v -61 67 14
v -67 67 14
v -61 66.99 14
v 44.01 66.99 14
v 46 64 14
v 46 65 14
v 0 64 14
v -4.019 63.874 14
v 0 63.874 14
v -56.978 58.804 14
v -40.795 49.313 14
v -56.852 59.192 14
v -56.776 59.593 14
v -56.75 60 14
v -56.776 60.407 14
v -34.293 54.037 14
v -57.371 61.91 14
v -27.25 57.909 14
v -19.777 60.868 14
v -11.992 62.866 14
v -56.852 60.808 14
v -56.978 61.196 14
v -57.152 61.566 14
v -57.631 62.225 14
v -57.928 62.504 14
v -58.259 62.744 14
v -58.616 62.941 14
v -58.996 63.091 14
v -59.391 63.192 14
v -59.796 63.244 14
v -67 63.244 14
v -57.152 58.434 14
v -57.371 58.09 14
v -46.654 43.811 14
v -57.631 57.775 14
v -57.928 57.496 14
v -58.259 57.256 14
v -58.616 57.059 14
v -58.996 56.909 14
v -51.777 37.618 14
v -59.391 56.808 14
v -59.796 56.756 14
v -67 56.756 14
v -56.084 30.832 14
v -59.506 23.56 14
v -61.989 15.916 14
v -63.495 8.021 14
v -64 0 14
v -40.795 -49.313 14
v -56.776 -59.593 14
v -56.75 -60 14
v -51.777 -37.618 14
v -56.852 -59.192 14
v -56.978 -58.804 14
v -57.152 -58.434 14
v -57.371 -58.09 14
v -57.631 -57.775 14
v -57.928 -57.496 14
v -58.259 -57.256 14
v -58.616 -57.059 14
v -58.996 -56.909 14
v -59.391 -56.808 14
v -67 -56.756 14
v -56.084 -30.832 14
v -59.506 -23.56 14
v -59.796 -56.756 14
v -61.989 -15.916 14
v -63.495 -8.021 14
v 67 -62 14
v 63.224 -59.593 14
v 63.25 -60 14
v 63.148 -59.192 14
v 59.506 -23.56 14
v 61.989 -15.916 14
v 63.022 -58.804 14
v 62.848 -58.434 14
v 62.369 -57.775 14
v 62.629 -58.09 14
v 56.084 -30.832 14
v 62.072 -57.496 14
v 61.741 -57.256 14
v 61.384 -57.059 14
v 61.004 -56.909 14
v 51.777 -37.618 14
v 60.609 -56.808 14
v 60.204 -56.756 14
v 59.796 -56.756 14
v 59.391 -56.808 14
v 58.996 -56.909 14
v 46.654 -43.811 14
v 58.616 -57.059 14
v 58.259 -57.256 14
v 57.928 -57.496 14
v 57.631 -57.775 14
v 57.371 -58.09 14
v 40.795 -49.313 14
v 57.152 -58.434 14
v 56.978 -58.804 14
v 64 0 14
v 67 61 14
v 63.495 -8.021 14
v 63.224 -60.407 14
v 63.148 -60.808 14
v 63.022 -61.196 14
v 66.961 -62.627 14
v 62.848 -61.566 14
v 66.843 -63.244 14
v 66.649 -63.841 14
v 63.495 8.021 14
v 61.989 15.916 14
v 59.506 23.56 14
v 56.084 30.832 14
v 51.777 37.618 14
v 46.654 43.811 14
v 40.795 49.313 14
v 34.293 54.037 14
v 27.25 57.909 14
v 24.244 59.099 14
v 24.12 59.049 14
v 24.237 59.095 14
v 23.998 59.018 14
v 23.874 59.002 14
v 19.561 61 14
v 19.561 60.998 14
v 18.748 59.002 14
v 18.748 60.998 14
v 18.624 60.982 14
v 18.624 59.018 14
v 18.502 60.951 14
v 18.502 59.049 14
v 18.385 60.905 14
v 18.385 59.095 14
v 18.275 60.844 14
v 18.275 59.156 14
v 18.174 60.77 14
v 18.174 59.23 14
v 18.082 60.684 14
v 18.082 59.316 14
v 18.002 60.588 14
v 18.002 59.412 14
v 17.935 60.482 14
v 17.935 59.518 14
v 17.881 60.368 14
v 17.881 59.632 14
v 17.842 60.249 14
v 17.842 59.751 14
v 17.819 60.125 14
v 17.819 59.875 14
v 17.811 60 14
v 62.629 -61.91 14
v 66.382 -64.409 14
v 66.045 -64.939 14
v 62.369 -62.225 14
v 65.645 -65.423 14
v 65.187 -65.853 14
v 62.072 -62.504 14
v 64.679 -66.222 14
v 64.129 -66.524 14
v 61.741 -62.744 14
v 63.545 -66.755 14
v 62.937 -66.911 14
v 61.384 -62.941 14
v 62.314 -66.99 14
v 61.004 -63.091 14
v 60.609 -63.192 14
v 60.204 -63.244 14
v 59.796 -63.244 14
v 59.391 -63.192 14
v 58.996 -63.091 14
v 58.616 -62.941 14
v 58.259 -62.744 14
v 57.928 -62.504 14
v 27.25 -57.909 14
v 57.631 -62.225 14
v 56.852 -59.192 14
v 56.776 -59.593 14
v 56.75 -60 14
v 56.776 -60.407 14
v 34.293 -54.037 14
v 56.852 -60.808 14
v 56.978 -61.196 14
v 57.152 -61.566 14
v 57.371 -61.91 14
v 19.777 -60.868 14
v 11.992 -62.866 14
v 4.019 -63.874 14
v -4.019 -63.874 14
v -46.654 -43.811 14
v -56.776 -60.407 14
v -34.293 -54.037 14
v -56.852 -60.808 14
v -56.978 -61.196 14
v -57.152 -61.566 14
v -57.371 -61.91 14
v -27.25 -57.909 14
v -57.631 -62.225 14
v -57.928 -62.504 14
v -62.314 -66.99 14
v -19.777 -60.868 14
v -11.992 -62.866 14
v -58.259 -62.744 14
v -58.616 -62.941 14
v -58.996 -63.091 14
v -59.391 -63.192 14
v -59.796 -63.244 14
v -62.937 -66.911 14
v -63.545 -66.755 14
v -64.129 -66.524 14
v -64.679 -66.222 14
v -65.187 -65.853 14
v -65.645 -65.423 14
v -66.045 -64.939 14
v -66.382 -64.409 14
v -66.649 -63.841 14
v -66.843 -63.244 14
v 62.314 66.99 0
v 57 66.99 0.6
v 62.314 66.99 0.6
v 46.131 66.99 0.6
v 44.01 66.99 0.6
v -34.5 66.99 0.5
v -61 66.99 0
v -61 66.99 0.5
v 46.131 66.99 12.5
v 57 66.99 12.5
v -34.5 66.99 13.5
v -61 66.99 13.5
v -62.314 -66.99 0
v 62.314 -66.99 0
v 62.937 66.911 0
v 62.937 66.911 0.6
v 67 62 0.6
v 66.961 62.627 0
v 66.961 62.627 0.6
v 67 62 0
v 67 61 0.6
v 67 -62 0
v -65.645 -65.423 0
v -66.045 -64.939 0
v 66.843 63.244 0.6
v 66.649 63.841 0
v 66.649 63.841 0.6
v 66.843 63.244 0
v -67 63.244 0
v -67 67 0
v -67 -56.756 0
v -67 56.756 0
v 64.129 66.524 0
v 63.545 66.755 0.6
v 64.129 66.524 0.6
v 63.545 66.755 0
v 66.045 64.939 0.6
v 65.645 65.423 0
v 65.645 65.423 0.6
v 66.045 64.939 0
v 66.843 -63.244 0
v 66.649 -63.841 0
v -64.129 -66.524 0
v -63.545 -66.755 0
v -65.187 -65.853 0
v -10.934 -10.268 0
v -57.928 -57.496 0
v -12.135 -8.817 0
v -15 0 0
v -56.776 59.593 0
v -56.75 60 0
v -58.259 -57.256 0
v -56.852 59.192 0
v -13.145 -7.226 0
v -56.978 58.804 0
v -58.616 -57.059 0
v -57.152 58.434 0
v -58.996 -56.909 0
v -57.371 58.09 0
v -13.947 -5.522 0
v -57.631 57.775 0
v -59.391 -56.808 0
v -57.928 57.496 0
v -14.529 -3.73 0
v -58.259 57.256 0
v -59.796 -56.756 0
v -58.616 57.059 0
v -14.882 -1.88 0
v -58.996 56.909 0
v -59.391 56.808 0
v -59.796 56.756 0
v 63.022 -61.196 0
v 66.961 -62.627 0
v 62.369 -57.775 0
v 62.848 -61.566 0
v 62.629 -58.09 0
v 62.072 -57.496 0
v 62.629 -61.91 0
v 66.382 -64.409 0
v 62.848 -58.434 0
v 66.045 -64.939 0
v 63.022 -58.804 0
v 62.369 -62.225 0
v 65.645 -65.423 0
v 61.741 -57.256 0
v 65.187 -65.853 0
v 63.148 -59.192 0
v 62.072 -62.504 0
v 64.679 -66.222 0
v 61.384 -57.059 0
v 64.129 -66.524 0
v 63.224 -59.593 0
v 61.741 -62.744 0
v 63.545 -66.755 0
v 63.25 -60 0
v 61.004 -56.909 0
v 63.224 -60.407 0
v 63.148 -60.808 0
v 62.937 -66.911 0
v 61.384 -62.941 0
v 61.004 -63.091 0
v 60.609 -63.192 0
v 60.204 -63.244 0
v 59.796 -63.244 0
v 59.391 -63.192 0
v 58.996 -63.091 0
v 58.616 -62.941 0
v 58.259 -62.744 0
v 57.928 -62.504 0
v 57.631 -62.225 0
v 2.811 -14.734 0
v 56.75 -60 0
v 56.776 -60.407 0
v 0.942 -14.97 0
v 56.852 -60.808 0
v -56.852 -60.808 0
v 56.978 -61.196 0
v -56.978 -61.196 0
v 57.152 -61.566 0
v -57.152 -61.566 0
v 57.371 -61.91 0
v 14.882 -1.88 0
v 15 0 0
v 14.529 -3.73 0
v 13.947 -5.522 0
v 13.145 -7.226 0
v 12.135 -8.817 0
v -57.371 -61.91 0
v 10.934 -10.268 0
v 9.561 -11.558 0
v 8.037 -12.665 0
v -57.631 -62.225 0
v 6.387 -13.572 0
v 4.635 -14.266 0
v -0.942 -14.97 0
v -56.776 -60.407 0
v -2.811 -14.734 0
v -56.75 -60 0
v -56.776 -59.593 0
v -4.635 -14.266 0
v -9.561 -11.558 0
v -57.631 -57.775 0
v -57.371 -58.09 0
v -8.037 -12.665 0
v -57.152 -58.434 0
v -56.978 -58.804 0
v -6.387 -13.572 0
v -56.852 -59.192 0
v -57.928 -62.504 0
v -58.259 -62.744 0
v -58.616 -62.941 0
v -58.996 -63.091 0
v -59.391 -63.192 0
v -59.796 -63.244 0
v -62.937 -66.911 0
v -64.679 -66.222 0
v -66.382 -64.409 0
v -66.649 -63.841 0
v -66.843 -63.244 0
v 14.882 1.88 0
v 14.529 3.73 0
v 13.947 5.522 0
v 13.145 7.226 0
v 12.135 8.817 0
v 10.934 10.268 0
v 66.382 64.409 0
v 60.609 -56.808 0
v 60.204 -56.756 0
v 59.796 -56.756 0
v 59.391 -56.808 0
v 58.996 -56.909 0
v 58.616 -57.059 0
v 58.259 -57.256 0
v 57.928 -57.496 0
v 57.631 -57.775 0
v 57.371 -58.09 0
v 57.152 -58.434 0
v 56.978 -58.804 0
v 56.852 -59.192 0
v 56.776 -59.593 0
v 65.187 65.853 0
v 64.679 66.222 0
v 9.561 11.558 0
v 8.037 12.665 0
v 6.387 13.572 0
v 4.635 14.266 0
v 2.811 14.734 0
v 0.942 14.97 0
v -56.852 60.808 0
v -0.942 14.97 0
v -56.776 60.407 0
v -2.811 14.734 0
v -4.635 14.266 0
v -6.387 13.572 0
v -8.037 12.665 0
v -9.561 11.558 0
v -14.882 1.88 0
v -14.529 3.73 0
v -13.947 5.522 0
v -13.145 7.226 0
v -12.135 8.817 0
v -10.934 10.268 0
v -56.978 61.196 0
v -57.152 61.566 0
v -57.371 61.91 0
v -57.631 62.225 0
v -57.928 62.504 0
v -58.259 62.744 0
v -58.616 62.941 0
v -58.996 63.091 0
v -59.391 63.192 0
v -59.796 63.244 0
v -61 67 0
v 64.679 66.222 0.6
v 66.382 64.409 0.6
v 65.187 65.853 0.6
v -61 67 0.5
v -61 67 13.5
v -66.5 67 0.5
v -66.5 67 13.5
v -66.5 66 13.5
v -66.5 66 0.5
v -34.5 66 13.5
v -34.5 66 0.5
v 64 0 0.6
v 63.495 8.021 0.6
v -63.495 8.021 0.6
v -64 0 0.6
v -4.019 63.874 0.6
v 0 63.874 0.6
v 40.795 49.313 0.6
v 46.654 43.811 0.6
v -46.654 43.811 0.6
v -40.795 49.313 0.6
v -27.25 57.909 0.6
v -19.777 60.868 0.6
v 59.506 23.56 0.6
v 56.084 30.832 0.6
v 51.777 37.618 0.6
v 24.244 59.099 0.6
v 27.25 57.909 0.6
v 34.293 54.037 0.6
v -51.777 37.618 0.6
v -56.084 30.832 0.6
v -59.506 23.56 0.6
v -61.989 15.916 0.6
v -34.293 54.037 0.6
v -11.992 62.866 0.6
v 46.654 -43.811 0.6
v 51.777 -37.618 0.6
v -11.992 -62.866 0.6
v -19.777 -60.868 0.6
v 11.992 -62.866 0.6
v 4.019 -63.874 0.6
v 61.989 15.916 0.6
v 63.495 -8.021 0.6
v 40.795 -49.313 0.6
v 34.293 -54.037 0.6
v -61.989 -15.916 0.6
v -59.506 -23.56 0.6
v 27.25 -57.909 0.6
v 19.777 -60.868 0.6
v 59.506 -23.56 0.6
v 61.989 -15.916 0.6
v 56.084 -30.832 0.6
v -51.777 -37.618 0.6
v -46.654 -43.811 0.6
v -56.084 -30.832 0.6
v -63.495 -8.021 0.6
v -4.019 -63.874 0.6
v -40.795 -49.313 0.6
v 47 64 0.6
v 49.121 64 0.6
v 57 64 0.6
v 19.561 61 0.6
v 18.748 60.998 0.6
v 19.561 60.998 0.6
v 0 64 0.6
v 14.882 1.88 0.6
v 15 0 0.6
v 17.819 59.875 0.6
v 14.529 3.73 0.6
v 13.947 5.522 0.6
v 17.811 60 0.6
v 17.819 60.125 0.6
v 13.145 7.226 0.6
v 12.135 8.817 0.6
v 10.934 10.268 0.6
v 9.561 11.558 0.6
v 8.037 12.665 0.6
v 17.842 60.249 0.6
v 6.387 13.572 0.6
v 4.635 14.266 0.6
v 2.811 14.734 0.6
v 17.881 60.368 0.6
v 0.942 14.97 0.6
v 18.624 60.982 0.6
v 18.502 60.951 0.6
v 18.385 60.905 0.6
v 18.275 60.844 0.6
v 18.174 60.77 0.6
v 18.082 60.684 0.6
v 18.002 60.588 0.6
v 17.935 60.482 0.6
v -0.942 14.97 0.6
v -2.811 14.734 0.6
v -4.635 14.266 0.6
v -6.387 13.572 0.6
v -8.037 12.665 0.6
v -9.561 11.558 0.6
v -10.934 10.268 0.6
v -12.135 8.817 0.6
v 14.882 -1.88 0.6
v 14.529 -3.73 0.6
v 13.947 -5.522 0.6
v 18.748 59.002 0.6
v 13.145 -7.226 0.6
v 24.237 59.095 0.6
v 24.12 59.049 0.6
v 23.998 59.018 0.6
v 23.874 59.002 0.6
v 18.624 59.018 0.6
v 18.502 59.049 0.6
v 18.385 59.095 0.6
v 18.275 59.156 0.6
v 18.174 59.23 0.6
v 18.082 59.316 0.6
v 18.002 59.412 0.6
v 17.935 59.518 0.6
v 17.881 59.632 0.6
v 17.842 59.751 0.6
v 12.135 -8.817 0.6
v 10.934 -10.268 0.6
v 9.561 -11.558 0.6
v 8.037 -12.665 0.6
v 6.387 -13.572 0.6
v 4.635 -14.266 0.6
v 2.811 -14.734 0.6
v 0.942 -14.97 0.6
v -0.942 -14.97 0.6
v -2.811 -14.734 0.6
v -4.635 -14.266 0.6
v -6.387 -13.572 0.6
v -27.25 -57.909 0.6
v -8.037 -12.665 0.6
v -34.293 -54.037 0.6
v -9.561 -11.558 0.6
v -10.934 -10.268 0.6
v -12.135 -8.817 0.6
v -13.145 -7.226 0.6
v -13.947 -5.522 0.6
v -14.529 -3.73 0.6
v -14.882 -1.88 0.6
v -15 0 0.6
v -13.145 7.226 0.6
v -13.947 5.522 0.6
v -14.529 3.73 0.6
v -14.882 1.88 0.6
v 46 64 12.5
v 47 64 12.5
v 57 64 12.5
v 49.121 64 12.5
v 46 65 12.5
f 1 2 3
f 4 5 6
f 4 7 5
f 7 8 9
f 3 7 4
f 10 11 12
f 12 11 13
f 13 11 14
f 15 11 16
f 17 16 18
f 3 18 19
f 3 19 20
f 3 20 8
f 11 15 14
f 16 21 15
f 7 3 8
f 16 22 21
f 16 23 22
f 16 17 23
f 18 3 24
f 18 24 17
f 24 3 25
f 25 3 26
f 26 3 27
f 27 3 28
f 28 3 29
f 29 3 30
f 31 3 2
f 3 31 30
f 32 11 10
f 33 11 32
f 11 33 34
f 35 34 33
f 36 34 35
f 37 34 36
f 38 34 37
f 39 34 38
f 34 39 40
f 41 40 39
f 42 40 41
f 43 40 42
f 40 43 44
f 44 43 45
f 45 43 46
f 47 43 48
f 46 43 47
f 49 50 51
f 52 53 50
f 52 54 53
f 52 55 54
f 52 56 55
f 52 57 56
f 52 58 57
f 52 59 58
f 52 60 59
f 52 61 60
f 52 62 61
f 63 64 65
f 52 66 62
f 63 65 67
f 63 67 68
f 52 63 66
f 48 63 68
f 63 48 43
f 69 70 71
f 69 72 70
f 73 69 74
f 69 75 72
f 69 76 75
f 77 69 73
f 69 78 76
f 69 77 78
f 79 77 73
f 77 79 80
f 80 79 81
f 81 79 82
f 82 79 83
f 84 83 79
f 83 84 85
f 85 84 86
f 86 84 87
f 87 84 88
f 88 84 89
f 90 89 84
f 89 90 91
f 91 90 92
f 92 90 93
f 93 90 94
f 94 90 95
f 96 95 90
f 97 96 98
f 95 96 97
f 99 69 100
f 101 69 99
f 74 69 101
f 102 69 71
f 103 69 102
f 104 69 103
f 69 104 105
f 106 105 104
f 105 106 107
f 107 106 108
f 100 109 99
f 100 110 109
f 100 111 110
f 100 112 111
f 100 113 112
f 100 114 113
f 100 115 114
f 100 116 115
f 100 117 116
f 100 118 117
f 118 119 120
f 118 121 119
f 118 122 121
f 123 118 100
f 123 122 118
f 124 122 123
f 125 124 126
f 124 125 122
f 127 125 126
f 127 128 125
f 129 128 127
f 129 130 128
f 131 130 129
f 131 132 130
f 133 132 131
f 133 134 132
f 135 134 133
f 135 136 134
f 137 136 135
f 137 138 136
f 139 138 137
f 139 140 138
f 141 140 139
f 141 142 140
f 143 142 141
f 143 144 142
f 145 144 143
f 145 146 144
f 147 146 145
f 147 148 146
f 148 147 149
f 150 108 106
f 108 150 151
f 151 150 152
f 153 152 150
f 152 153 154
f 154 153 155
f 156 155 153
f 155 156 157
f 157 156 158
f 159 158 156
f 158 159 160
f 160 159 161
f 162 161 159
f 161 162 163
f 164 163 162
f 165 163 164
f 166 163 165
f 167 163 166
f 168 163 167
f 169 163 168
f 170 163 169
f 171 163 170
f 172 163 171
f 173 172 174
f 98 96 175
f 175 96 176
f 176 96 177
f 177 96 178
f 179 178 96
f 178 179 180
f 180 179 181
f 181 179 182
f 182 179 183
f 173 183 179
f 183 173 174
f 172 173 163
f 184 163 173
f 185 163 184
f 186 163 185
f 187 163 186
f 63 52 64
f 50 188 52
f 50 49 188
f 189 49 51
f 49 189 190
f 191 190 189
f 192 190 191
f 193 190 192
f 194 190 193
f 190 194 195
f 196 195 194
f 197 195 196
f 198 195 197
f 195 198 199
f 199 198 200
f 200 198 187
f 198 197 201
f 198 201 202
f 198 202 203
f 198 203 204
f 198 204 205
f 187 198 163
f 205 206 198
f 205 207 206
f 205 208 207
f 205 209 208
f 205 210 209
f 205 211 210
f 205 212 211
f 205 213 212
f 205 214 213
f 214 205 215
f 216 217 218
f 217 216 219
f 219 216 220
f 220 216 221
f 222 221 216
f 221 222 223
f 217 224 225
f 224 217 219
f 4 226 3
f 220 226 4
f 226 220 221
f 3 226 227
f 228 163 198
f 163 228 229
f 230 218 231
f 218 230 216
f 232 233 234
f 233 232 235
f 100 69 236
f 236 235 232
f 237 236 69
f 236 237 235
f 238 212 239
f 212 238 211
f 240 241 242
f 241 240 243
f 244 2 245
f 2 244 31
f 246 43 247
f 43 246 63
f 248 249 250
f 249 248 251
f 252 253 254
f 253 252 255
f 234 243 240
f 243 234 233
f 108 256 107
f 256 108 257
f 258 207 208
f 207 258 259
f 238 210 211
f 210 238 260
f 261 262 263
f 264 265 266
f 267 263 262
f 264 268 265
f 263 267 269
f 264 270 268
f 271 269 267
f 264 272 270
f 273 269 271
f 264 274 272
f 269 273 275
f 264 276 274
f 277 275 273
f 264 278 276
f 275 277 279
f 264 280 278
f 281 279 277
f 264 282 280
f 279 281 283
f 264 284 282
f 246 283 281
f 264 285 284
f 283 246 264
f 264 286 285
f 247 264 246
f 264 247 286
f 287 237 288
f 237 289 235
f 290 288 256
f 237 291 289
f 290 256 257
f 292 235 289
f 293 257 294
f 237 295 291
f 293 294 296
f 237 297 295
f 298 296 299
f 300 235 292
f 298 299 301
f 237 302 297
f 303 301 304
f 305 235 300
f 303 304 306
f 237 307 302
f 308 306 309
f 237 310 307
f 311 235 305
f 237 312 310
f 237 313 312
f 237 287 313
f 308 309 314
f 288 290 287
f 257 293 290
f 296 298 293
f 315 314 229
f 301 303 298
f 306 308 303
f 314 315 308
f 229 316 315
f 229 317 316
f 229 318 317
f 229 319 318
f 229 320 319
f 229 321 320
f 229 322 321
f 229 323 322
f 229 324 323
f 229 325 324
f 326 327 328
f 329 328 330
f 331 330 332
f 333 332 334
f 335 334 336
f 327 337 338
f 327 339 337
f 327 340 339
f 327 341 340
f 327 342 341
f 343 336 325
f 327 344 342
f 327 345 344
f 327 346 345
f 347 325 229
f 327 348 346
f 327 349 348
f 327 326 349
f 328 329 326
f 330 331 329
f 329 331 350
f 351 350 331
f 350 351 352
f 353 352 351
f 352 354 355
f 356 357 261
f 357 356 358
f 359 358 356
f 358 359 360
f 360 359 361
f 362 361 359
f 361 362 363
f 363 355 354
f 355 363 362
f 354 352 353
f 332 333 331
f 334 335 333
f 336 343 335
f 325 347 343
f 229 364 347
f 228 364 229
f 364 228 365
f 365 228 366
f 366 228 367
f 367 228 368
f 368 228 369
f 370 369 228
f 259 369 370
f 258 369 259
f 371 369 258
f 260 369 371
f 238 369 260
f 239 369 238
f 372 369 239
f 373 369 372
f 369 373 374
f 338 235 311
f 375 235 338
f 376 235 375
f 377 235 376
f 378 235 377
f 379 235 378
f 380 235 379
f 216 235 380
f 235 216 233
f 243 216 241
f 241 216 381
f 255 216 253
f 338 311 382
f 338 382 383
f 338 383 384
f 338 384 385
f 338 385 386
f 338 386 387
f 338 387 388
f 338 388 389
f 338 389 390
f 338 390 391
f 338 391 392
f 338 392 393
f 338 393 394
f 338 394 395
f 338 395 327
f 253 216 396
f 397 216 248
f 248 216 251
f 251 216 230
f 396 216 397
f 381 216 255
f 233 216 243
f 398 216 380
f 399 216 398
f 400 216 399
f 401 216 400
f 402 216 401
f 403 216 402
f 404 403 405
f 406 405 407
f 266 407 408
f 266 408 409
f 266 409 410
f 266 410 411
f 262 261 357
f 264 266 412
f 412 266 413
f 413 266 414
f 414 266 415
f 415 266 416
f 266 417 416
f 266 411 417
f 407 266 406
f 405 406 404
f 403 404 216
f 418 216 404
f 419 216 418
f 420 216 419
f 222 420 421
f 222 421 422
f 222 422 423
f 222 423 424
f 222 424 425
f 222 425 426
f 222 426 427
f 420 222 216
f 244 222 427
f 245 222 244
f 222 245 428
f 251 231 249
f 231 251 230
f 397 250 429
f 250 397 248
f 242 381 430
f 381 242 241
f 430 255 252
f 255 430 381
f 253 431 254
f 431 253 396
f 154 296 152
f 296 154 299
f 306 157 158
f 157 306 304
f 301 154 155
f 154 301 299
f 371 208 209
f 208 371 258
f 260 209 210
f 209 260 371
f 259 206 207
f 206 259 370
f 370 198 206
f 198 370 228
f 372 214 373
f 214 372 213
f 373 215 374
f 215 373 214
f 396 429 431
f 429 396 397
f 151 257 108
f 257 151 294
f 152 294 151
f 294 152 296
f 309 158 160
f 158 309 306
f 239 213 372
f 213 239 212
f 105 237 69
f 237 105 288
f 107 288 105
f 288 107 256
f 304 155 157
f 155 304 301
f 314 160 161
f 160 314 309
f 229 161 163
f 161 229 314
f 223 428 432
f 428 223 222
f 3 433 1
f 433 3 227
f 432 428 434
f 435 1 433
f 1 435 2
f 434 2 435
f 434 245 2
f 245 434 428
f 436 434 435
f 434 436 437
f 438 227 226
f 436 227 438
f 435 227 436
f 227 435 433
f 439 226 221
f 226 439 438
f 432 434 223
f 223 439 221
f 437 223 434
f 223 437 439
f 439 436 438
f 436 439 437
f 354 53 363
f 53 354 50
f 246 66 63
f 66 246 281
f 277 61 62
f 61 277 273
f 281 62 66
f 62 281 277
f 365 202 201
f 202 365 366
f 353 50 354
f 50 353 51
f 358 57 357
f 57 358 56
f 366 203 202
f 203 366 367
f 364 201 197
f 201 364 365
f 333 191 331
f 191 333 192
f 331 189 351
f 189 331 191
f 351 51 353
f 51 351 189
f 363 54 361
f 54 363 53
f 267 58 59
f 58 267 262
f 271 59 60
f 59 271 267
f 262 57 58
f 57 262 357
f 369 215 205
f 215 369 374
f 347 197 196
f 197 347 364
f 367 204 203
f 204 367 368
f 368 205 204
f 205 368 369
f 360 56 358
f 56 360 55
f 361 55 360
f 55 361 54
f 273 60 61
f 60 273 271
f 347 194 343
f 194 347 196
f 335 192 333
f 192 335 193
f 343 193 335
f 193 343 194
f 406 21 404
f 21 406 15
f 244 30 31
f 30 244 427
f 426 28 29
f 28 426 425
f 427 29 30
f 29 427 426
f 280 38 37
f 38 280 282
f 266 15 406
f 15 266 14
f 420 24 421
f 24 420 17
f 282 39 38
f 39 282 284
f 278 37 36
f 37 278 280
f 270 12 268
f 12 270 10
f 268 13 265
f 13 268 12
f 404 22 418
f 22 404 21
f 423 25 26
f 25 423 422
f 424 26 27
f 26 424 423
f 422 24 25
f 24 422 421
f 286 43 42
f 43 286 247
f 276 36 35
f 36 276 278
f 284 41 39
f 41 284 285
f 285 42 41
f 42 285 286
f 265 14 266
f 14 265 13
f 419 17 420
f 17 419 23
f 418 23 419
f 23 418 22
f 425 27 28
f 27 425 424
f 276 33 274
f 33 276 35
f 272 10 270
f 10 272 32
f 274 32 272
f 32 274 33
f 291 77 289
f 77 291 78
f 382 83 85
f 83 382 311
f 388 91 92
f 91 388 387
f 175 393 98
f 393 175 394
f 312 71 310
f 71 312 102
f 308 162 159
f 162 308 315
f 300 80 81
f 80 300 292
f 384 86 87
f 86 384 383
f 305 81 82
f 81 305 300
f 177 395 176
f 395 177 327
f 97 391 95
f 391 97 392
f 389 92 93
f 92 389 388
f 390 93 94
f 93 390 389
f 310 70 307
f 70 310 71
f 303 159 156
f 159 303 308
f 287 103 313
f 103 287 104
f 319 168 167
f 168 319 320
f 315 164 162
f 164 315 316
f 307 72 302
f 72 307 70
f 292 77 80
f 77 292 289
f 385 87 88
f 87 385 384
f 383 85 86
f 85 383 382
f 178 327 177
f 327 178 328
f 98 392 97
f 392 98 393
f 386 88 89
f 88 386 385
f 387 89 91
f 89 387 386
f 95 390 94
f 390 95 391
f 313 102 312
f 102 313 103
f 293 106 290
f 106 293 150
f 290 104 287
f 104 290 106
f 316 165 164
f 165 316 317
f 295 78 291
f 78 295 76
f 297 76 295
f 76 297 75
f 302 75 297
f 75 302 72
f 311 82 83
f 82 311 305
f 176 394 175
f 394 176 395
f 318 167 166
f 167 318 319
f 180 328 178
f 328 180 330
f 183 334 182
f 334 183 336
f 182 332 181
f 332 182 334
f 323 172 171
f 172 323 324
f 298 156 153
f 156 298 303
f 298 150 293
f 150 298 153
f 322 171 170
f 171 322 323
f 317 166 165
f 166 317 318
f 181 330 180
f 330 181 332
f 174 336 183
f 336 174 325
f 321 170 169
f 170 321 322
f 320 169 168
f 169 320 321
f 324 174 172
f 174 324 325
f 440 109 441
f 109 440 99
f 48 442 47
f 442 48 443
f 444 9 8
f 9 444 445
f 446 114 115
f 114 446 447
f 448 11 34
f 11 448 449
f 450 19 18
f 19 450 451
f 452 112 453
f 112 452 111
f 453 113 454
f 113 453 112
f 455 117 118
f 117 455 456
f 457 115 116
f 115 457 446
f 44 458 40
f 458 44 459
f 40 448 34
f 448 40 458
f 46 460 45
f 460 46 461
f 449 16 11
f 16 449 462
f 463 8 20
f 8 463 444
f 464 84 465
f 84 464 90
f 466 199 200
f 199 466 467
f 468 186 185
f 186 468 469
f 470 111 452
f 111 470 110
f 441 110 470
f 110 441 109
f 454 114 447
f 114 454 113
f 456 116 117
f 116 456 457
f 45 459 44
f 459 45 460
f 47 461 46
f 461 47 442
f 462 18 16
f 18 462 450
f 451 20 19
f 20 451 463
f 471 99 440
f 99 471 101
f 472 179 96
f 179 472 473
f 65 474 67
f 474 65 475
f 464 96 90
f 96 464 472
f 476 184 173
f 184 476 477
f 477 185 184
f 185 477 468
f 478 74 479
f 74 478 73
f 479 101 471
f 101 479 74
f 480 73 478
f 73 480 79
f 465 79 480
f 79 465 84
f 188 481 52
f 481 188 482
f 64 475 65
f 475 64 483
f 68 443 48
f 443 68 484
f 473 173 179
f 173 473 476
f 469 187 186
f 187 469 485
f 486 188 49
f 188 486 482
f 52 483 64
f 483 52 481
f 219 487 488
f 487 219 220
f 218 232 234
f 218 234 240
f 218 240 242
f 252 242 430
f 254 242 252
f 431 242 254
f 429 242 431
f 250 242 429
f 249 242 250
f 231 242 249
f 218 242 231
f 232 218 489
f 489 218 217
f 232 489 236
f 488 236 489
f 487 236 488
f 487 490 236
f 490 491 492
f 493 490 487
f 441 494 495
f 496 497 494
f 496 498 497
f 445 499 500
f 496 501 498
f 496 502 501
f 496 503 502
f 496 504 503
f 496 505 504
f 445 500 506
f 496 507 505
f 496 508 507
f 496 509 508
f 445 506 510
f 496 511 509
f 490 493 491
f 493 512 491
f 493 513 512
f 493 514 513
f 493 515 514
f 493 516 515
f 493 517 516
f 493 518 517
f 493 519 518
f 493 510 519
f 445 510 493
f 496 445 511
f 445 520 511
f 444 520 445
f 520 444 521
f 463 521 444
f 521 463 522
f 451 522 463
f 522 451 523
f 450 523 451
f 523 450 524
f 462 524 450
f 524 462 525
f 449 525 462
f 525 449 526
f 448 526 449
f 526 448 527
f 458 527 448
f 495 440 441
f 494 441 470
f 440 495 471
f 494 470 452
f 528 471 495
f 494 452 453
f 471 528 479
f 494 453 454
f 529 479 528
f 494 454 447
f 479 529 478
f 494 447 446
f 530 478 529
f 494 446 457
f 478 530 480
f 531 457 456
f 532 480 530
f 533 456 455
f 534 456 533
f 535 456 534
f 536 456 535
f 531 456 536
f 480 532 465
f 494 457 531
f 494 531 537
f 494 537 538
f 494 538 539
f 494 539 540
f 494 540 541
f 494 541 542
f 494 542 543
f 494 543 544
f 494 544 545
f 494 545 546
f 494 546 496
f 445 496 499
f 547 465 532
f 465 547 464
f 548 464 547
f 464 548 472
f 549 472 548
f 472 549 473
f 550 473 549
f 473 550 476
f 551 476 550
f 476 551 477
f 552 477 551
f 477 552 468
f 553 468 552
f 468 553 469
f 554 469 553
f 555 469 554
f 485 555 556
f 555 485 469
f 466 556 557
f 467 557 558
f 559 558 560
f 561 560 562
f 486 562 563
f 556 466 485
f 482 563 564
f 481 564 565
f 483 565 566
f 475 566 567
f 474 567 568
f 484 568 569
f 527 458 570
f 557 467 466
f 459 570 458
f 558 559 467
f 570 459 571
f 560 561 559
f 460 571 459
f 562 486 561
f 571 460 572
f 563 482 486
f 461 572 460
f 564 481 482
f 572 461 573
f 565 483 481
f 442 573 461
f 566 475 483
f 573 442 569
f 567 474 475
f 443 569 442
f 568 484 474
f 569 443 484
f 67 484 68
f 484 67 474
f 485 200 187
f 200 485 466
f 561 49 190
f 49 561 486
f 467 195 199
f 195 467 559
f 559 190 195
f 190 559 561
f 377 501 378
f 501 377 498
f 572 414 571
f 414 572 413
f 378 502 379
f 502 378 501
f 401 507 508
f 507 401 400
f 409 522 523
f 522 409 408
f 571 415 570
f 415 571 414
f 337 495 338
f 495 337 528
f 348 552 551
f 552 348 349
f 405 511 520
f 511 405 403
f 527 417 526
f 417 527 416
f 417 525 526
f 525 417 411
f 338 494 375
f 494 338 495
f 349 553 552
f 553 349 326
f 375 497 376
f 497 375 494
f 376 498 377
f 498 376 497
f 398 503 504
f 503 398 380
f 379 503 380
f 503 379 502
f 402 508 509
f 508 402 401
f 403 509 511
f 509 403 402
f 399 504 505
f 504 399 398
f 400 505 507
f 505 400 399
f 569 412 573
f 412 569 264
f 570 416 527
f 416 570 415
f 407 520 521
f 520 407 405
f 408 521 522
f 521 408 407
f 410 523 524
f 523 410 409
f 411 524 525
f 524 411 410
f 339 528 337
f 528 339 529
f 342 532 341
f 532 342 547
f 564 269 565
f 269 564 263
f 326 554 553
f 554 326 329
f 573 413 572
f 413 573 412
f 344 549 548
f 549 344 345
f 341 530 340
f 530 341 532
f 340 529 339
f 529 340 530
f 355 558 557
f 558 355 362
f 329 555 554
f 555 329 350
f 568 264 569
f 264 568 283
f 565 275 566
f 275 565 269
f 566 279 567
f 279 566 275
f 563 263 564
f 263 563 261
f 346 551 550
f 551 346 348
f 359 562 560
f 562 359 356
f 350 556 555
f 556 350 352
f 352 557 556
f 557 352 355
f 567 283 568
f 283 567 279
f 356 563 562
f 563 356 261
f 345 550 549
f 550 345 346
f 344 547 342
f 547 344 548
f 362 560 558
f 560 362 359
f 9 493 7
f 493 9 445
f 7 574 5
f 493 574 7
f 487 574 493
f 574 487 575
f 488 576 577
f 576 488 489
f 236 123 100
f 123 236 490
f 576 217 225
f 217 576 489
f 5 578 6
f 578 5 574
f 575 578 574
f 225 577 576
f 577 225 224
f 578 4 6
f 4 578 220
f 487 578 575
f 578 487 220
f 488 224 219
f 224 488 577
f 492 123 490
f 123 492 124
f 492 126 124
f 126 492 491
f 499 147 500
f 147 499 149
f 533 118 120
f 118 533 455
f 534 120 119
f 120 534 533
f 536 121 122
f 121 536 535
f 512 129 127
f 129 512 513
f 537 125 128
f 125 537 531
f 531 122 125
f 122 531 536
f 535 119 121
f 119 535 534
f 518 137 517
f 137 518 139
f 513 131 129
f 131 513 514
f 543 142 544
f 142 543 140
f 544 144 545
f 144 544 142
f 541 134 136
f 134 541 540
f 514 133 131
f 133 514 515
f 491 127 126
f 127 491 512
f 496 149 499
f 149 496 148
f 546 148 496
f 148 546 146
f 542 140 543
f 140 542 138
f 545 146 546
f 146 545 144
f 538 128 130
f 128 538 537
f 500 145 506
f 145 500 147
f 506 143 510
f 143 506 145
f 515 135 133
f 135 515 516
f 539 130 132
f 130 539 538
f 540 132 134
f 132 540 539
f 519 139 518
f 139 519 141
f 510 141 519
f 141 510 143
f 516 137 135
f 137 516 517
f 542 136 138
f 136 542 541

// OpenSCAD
$fn = 50;


union() {
	difference() {
		union() {
			translate(v = [0, 0, 0]) {
				rotate(a = [0, 0, 0]) {
					hull() {
						translate(v = [-62.0000000000, 62.0000000000, 0]) {
							rotate(a = [0, 0, 0]) {
								translate(v = [0, 0, 0]) {
									rotate(a = [0, 0, 0]) {
										cylinder(h = 14, r = 5);
									}
								}
							}
						}
						translate(v = [62.0000000000, 62.0000000000, 0]) {
							rotate(a = [0, 0, 0]) {
								translate(v = [0, 0, 0]) {
									rotate(a = [0, 0, 0]) {
										cylinder(h = 14, r = 5);
									}
								}
							}
						}
						translate(v = [-62.0000000000, -62.0000000000, 0]) {
							rotate(a = [0, 0, 0]) {
								translate(v = [0, 0, 0]) {
									rotate(a = [0, 0, 0]) {
										cylinder(h = 14, r = 5);
									}
								}
							}
						}
						translate(v = [62.0000000000, -62.0000000000, 0]) {
							rotate(a = [0, 0, 0]) {
								translate(v = [0, 0, 0]) {
									rotate(a = [0, 0, 0]) {
										cylinder(h = 14, r = 5);
									}
								}
							}
						}
					}
				}
			}
			translate(v = [-67.0000000000, 61.0000000000, 0]) {
				rotate(a = [0, 0, 0]) {
					cube(size = [6, 6, 14]);
				}
			}
		}
		union() {
			#translate(v = [-66.5000000000, 66.0000000000, 0.5000000000]) {
				rotate(a = [0, 0, 0]) {
					cube(size = [32, 1, 13.0000000000]);
				}
			}
			translate(v = [-67.5000000000, -60.0000000000, -125]) {
				rotate(a = [0, 0, 0]) {
					hull() {
						translate(v = [7.5000000000, 0, 0]) {
							rotate(a = [0, 0, 0]) {
								translate(v = [0, 0, 0]) {
									rotate(a = [0, 0, 0]) {
										cylinder(h = 250, r = 3.2500000000);
									}
								}
							}
						}
						translate(v = [-7.5000000000, 0, 0]) {
							rotate(a = [0, 0, 0]) {
								translate(v = [0, 0, 0]) {
									rotate(a = [0, 0, 0]) {
										cylinder(h = 250, r = 3.2500000000);
									}
								}
							}
						}
					}
				}
			}
			translate(v = [-67.5000000000, 60.0000000000, -125]) {
				rotate(a = [0, 0, 0]) {
					hull() {
						translate(v = [7.5000000000, 0, 0]) {
							rotate(a = [0, 0, 0]) {
								translate(v = [0, 0, 0]) {
									rotate(a = [0, 0, 0]) {
										cylinder(h = 250, r = 3.2500000000);
									}
								}
							}
						}
						translate(v = [-7.5000000000, 0, 0]) {
							rotate(a = [0, 0, 0]) {
								translate(v = [0, 0, 0]) {
									rotate(a = [0, 0, 0]) {
										cylinder(h = 250, r = 3.2500000000);
									}
								}
							}
						}
					}
				}
			}
			translate(v = [60.0000000000, -60.0000000000, -125.0000000000]) {
				rotate(a = [0, 0, 0]) {
					cylinder(h = 250, r = 3.2500000000);
				}
			}
			translate(v = [0, 0, 0.6000000000]) {
				rotate(a = [0, 0, 0]) {
					cylinder(h = 16.4000000000, r = 64.0000000000);
				}
			}
			translate(v = [0, 0, -7.0000000000]) {
				rotate(a = [0, 0, 0]) {
					cylinder(h = 14, r = 15.0000000000);
				}
			}
			translate(v = [0.0000000000, 61.0000000000, 0.6000000000]) {
				rotate(a = [0, 0, 0]) {
					cube(size = [67.0000000000, 3, 16.4000000000]);
				}
			}
			translate(v = [57.0000000000, 61.0000000000, 0.6000000000]) {
				rotate(a = [0, 0, 0]) {
					cube(size = [10, 6, 16.4000000000]);
				}
			}
			translate(v = [46.0000000000, 61.0000000000, 12.5000000000]) {
				rotate(a = [0, 0, 0]) {
					cube(size = [21, 6, 1.5000000000]);
				}
			}
			translate(v = [43.2500000000, 67.7500000000, 0.6000000000]) {
				rotate(a = [0, 0, -45]) {
					cube(size = [7.5000000000, 1.5000000000, 16.4000000000]);
				}
			}
			translate(v = [12.0610000000, 59.0000000000, 0.6000000000]) {
				rotate(a = [0, 0, 0]) {
					cube(size = [7.5000000000, 2, 13.4000000000]);
				}
			}
		}
	}
	union() {
		translate(v = [21.3110000000, 60.0000000000, 0]) {
			rotate(a = [0, 0, 0]) {
				hull() {
					translate(v = [2.5000000000, 0, 0]) {
						rotate(a = [0, 0, 0]) {
							#translate(v = [0, 0, 0]) {
								rotate(a = [0, 0, 0]) {
									cylinder(h = 14, r = 1.0000000000);
								}
							}
						}
					}
					translate(v = [-2.5000000000, 0, 0]) {
						rotate(a = [0, 0, 0]) {
							#translate(v = [0, 0, 0]) {
								rotate(a = [0, 0, 0]) {
									cylinder(h = 14, r = 1.0000000000);
								}
							}
						}
					}
				}
			}
		}
	}
}
